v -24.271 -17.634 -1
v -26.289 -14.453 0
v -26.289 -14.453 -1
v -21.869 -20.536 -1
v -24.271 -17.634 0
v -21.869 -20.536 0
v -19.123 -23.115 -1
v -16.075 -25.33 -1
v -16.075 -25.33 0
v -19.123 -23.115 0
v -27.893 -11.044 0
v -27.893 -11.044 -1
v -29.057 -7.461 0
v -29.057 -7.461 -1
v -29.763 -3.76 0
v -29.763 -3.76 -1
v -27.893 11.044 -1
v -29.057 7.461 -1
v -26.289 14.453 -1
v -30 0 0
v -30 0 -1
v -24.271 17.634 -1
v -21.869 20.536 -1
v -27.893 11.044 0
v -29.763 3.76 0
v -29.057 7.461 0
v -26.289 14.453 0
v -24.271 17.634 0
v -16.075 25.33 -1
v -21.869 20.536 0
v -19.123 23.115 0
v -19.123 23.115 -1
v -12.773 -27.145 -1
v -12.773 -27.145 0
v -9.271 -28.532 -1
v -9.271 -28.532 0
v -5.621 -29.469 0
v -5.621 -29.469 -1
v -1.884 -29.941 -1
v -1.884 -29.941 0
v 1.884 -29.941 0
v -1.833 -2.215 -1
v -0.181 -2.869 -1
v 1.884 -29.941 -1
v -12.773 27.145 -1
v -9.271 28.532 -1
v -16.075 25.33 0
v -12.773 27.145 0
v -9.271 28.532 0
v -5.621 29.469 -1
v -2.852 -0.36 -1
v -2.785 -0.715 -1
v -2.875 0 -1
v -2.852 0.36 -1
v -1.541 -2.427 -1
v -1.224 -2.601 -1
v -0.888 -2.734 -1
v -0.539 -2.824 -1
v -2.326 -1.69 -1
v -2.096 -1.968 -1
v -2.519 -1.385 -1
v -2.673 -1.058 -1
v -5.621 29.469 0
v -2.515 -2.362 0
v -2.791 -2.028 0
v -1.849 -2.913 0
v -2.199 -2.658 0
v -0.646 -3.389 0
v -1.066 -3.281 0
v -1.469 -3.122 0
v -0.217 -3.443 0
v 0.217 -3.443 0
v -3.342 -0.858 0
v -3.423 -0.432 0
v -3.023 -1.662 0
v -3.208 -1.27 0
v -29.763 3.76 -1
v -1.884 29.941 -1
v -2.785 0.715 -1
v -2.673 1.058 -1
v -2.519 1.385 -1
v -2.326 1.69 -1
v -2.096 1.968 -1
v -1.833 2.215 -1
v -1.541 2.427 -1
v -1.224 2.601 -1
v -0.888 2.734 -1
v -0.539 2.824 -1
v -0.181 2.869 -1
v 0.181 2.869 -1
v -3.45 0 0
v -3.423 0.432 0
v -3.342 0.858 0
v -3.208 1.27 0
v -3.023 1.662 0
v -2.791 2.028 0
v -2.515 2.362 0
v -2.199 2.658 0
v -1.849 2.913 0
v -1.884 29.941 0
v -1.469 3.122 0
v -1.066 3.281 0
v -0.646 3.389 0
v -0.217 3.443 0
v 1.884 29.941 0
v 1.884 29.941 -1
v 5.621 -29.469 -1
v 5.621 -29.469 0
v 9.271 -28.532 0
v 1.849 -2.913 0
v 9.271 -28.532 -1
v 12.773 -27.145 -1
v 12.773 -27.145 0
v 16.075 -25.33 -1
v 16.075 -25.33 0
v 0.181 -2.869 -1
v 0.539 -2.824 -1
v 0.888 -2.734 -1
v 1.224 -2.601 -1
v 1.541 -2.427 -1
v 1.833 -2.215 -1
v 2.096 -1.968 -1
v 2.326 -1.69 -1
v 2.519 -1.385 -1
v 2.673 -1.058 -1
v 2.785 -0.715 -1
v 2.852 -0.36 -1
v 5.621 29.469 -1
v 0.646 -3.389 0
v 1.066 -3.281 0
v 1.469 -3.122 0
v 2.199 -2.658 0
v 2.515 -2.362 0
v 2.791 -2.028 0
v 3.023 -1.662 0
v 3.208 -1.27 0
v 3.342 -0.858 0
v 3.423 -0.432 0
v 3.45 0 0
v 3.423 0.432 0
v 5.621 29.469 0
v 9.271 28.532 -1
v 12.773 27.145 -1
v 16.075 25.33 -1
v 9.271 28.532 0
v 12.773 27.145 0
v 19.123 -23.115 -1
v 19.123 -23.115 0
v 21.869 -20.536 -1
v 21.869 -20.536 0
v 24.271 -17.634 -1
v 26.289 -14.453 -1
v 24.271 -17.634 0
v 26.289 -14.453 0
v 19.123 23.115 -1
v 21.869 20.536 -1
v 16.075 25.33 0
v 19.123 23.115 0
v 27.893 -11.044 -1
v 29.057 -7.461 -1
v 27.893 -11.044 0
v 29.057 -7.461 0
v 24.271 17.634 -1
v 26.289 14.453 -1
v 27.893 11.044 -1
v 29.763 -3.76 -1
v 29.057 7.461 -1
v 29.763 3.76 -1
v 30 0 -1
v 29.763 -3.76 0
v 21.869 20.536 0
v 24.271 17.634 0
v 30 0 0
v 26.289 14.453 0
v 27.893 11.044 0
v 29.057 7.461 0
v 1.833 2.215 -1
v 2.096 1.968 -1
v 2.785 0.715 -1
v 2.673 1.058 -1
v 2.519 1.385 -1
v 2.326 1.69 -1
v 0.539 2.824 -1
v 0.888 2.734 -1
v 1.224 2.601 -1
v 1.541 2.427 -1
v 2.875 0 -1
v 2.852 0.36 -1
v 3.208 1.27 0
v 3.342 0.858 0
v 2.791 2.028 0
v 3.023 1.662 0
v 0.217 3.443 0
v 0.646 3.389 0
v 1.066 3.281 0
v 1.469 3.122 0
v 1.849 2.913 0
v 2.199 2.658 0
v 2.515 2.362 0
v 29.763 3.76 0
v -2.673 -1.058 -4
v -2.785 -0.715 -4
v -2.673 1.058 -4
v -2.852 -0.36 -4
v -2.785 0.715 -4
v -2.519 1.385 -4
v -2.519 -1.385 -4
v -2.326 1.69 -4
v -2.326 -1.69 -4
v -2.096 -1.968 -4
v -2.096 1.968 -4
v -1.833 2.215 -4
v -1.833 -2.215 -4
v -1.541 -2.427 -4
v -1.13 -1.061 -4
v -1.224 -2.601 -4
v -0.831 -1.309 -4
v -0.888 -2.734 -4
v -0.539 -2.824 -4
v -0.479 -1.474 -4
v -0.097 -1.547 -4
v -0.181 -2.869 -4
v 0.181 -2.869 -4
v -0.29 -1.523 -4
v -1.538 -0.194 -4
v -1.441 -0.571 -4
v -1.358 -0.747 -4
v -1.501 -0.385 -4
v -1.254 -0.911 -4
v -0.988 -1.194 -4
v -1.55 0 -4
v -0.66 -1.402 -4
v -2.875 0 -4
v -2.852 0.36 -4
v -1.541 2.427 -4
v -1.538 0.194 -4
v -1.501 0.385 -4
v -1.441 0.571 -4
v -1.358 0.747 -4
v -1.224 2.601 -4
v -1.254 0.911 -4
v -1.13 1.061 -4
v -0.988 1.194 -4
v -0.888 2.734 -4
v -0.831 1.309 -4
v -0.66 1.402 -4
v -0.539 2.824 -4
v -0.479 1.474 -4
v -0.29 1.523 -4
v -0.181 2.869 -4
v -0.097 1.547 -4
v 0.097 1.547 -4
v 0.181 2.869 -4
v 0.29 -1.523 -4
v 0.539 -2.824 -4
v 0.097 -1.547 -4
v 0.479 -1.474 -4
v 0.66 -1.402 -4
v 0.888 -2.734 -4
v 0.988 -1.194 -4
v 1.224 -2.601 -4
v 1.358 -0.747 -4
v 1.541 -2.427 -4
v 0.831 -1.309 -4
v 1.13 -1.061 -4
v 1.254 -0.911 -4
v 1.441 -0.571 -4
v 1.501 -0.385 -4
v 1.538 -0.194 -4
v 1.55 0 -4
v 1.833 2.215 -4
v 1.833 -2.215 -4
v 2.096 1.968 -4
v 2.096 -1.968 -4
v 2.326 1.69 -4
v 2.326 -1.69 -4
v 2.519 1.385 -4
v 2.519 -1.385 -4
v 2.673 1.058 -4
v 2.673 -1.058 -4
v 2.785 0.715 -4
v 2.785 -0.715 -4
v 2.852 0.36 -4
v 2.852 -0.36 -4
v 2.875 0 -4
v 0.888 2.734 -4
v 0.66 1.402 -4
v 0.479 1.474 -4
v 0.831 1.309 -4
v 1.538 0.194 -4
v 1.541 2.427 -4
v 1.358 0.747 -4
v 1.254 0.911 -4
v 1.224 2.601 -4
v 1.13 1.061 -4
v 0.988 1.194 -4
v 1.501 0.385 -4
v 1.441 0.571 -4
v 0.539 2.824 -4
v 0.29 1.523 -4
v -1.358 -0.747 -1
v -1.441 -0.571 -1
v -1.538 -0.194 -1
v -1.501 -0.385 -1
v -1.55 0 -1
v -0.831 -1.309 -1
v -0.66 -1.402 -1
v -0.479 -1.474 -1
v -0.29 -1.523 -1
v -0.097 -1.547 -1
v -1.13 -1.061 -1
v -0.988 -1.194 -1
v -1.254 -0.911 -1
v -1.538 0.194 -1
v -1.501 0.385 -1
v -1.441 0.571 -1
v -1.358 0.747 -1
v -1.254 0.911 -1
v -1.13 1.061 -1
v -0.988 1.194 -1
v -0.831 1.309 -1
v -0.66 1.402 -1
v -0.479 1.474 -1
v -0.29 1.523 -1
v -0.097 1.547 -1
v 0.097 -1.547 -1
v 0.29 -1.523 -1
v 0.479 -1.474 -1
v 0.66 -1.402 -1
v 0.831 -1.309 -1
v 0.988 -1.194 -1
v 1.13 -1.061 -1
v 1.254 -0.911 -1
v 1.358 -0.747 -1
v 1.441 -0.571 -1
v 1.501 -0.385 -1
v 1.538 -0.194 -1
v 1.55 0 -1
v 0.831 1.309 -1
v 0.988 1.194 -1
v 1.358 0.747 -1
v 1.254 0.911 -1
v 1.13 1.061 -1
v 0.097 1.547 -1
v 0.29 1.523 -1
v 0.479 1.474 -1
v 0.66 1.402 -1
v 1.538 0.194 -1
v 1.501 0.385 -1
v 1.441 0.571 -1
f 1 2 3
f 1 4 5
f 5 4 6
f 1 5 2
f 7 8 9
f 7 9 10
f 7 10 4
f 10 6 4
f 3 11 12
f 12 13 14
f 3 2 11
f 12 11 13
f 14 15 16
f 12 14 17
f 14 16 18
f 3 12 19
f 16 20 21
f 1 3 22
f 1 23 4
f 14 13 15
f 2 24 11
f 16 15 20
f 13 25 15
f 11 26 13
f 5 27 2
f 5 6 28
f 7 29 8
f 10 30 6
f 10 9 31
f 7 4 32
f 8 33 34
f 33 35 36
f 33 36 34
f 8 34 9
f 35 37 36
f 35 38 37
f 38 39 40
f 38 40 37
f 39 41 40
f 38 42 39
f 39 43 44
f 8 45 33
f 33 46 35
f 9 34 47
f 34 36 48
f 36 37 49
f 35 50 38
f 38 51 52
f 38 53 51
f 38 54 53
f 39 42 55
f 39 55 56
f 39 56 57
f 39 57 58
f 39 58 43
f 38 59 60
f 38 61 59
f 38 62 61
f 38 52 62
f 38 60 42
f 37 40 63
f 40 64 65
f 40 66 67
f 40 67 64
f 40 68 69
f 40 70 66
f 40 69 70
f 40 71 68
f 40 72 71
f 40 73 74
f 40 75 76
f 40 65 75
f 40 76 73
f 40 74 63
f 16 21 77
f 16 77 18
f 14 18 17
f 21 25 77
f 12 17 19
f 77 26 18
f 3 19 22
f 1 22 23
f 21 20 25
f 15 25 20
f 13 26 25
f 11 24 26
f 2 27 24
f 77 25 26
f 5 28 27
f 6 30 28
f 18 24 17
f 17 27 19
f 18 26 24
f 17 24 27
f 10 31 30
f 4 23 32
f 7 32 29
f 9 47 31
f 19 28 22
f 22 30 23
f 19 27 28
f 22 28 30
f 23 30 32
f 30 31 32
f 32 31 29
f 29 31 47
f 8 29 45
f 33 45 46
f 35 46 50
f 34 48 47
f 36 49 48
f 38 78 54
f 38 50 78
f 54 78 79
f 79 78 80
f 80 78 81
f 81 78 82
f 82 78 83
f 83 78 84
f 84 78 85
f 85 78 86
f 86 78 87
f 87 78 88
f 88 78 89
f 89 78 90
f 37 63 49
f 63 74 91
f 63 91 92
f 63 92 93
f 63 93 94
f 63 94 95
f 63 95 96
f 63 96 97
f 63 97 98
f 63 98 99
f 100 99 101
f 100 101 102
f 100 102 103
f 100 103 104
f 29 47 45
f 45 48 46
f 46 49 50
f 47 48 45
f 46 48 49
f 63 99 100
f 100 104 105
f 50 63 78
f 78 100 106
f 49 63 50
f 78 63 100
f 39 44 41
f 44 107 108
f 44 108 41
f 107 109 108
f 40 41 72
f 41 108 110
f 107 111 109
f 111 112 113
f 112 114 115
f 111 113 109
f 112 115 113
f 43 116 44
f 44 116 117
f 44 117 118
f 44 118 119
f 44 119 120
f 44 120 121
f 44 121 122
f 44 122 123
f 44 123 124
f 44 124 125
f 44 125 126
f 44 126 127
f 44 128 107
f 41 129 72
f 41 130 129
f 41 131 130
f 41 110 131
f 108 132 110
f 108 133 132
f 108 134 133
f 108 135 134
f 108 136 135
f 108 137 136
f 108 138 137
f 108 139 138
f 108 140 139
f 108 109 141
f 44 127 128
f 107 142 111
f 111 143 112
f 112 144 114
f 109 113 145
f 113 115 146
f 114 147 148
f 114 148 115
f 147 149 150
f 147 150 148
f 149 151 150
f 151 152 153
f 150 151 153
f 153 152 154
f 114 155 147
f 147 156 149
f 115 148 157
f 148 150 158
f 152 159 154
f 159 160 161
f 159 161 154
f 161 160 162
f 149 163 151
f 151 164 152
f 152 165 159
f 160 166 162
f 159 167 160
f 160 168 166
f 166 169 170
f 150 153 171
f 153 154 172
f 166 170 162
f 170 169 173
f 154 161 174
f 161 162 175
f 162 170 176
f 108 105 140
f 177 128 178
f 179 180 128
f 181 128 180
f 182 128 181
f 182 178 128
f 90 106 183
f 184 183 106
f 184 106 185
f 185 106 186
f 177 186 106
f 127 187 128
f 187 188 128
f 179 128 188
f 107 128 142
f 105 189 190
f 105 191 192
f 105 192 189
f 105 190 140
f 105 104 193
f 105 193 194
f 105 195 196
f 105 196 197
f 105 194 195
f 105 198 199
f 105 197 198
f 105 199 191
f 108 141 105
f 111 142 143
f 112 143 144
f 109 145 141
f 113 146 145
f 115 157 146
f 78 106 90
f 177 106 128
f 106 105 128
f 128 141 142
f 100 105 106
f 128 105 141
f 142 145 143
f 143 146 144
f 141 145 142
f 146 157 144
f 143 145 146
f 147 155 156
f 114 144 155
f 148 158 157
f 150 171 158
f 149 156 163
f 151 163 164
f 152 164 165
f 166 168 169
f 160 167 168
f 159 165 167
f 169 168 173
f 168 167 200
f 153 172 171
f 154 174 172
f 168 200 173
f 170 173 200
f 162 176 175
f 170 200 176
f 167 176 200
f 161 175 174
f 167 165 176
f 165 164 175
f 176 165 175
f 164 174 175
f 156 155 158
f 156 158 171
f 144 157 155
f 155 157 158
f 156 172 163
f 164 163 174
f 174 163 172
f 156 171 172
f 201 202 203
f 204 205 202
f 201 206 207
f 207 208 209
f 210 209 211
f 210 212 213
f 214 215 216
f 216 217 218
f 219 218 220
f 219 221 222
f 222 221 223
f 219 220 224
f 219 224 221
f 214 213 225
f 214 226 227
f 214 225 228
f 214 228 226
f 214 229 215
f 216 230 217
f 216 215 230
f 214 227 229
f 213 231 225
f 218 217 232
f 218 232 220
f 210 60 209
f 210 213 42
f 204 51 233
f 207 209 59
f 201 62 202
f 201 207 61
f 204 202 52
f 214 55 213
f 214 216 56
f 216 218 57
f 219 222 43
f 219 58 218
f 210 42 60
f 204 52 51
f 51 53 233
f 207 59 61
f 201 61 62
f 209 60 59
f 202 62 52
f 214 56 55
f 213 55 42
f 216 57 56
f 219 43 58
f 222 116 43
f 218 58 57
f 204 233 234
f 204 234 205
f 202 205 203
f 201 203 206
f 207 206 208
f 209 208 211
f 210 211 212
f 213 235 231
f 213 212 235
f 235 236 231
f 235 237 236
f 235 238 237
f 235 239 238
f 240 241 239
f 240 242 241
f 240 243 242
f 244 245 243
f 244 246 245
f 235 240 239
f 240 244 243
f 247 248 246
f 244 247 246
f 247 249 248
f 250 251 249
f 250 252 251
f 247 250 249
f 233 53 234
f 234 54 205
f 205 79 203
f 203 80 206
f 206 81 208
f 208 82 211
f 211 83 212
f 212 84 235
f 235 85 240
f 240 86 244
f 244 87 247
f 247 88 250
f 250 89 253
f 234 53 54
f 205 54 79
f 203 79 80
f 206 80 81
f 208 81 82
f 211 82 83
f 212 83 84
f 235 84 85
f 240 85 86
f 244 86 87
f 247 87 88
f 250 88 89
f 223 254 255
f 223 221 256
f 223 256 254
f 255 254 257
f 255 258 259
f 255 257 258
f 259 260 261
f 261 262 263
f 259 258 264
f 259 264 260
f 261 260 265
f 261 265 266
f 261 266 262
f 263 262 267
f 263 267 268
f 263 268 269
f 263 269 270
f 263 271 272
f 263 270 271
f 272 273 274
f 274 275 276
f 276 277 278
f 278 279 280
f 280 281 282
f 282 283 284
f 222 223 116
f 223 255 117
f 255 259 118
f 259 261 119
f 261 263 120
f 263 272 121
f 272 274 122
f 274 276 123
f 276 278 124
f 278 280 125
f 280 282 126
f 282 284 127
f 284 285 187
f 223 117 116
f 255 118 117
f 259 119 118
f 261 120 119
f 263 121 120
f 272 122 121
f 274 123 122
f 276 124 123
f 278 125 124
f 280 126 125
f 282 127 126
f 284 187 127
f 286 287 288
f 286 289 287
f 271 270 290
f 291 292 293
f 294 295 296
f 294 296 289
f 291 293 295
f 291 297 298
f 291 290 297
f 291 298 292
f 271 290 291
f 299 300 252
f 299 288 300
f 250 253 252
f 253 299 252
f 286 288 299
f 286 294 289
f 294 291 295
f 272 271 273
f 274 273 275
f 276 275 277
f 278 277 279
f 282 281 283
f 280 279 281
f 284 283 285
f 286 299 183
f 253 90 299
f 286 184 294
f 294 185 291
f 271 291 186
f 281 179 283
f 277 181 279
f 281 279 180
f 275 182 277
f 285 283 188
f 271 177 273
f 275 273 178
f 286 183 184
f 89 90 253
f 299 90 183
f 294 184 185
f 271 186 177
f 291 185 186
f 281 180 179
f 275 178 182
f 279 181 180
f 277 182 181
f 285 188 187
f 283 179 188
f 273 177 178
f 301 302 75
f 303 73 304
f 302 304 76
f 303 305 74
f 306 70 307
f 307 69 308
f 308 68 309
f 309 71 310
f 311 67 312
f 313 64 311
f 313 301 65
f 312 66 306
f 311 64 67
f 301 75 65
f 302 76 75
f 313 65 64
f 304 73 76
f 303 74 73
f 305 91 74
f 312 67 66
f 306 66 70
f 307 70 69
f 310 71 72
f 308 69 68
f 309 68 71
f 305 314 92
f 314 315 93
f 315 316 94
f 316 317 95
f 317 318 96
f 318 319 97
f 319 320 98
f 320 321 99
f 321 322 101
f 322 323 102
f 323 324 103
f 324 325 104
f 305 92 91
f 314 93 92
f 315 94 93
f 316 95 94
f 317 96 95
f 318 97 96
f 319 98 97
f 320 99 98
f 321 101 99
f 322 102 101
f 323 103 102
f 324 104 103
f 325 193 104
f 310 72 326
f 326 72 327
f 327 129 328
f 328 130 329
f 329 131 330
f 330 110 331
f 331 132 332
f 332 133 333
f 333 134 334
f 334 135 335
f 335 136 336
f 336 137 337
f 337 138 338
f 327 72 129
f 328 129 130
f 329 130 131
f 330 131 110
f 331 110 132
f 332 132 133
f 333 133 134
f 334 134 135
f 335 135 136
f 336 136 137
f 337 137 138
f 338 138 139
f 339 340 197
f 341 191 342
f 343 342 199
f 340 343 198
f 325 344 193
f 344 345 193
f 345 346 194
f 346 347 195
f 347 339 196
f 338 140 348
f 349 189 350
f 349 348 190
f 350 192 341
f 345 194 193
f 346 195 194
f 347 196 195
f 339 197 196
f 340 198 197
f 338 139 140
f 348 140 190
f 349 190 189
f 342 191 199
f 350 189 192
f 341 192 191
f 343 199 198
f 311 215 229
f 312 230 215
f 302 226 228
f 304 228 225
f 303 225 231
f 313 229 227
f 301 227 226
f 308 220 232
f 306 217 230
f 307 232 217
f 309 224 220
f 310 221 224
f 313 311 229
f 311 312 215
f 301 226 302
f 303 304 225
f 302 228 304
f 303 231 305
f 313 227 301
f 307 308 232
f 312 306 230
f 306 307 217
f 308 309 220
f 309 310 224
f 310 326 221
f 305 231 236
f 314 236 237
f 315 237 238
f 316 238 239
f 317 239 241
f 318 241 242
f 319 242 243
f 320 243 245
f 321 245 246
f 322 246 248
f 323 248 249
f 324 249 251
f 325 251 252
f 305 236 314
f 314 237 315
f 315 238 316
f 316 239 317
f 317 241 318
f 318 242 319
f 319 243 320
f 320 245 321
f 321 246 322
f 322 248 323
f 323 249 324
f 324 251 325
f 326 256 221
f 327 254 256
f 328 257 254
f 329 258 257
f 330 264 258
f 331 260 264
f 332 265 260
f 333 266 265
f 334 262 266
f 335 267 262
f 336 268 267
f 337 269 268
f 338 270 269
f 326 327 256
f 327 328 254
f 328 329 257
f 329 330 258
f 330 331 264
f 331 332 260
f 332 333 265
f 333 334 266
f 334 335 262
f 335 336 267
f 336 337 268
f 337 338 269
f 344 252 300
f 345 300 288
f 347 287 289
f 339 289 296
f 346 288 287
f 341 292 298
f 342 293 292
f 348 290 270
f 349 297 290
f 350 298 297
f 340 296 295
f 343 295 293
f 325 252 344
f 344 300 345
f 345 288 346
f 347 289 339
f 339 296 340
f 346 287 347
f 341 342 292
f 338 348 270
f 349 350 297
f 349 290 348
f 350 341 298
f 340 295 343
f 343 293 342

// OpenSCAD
$fn = 50;

difference() {
	union() {
		translate(v = [0, 0, -1.0]) {
			cylinder(h = 1.0, r = 30.0);
		}
		#translate(v = [0, 0, -4.0]) {
			cylinder(h = 4.0, r = 2.875);
		}
	}
	union() {
		translate(v = [0, 0, 0]) {
			rotate(a = [0, 0, 0]) {
				difference() {
					union() {
						translate(v = [0, 0, -4.0]) {
							cylinder(h = 4.0, r = 1.25);
						}
						translate(v = [0, 0, -1.0]) {
							cylinder(h = 1.0, r1 = 1.55, r2 = 3.45);
						}
						translate(v = [0, 0, -4.0]) {
							cylinder(h = 4.0, r = 1.55);
						}
						translate(v = [0, 0, -4.0]) {
							cylinder(h = 4.0, r = 1.25);
						}
					}
					union();
				}
			}
		}
	}
}
